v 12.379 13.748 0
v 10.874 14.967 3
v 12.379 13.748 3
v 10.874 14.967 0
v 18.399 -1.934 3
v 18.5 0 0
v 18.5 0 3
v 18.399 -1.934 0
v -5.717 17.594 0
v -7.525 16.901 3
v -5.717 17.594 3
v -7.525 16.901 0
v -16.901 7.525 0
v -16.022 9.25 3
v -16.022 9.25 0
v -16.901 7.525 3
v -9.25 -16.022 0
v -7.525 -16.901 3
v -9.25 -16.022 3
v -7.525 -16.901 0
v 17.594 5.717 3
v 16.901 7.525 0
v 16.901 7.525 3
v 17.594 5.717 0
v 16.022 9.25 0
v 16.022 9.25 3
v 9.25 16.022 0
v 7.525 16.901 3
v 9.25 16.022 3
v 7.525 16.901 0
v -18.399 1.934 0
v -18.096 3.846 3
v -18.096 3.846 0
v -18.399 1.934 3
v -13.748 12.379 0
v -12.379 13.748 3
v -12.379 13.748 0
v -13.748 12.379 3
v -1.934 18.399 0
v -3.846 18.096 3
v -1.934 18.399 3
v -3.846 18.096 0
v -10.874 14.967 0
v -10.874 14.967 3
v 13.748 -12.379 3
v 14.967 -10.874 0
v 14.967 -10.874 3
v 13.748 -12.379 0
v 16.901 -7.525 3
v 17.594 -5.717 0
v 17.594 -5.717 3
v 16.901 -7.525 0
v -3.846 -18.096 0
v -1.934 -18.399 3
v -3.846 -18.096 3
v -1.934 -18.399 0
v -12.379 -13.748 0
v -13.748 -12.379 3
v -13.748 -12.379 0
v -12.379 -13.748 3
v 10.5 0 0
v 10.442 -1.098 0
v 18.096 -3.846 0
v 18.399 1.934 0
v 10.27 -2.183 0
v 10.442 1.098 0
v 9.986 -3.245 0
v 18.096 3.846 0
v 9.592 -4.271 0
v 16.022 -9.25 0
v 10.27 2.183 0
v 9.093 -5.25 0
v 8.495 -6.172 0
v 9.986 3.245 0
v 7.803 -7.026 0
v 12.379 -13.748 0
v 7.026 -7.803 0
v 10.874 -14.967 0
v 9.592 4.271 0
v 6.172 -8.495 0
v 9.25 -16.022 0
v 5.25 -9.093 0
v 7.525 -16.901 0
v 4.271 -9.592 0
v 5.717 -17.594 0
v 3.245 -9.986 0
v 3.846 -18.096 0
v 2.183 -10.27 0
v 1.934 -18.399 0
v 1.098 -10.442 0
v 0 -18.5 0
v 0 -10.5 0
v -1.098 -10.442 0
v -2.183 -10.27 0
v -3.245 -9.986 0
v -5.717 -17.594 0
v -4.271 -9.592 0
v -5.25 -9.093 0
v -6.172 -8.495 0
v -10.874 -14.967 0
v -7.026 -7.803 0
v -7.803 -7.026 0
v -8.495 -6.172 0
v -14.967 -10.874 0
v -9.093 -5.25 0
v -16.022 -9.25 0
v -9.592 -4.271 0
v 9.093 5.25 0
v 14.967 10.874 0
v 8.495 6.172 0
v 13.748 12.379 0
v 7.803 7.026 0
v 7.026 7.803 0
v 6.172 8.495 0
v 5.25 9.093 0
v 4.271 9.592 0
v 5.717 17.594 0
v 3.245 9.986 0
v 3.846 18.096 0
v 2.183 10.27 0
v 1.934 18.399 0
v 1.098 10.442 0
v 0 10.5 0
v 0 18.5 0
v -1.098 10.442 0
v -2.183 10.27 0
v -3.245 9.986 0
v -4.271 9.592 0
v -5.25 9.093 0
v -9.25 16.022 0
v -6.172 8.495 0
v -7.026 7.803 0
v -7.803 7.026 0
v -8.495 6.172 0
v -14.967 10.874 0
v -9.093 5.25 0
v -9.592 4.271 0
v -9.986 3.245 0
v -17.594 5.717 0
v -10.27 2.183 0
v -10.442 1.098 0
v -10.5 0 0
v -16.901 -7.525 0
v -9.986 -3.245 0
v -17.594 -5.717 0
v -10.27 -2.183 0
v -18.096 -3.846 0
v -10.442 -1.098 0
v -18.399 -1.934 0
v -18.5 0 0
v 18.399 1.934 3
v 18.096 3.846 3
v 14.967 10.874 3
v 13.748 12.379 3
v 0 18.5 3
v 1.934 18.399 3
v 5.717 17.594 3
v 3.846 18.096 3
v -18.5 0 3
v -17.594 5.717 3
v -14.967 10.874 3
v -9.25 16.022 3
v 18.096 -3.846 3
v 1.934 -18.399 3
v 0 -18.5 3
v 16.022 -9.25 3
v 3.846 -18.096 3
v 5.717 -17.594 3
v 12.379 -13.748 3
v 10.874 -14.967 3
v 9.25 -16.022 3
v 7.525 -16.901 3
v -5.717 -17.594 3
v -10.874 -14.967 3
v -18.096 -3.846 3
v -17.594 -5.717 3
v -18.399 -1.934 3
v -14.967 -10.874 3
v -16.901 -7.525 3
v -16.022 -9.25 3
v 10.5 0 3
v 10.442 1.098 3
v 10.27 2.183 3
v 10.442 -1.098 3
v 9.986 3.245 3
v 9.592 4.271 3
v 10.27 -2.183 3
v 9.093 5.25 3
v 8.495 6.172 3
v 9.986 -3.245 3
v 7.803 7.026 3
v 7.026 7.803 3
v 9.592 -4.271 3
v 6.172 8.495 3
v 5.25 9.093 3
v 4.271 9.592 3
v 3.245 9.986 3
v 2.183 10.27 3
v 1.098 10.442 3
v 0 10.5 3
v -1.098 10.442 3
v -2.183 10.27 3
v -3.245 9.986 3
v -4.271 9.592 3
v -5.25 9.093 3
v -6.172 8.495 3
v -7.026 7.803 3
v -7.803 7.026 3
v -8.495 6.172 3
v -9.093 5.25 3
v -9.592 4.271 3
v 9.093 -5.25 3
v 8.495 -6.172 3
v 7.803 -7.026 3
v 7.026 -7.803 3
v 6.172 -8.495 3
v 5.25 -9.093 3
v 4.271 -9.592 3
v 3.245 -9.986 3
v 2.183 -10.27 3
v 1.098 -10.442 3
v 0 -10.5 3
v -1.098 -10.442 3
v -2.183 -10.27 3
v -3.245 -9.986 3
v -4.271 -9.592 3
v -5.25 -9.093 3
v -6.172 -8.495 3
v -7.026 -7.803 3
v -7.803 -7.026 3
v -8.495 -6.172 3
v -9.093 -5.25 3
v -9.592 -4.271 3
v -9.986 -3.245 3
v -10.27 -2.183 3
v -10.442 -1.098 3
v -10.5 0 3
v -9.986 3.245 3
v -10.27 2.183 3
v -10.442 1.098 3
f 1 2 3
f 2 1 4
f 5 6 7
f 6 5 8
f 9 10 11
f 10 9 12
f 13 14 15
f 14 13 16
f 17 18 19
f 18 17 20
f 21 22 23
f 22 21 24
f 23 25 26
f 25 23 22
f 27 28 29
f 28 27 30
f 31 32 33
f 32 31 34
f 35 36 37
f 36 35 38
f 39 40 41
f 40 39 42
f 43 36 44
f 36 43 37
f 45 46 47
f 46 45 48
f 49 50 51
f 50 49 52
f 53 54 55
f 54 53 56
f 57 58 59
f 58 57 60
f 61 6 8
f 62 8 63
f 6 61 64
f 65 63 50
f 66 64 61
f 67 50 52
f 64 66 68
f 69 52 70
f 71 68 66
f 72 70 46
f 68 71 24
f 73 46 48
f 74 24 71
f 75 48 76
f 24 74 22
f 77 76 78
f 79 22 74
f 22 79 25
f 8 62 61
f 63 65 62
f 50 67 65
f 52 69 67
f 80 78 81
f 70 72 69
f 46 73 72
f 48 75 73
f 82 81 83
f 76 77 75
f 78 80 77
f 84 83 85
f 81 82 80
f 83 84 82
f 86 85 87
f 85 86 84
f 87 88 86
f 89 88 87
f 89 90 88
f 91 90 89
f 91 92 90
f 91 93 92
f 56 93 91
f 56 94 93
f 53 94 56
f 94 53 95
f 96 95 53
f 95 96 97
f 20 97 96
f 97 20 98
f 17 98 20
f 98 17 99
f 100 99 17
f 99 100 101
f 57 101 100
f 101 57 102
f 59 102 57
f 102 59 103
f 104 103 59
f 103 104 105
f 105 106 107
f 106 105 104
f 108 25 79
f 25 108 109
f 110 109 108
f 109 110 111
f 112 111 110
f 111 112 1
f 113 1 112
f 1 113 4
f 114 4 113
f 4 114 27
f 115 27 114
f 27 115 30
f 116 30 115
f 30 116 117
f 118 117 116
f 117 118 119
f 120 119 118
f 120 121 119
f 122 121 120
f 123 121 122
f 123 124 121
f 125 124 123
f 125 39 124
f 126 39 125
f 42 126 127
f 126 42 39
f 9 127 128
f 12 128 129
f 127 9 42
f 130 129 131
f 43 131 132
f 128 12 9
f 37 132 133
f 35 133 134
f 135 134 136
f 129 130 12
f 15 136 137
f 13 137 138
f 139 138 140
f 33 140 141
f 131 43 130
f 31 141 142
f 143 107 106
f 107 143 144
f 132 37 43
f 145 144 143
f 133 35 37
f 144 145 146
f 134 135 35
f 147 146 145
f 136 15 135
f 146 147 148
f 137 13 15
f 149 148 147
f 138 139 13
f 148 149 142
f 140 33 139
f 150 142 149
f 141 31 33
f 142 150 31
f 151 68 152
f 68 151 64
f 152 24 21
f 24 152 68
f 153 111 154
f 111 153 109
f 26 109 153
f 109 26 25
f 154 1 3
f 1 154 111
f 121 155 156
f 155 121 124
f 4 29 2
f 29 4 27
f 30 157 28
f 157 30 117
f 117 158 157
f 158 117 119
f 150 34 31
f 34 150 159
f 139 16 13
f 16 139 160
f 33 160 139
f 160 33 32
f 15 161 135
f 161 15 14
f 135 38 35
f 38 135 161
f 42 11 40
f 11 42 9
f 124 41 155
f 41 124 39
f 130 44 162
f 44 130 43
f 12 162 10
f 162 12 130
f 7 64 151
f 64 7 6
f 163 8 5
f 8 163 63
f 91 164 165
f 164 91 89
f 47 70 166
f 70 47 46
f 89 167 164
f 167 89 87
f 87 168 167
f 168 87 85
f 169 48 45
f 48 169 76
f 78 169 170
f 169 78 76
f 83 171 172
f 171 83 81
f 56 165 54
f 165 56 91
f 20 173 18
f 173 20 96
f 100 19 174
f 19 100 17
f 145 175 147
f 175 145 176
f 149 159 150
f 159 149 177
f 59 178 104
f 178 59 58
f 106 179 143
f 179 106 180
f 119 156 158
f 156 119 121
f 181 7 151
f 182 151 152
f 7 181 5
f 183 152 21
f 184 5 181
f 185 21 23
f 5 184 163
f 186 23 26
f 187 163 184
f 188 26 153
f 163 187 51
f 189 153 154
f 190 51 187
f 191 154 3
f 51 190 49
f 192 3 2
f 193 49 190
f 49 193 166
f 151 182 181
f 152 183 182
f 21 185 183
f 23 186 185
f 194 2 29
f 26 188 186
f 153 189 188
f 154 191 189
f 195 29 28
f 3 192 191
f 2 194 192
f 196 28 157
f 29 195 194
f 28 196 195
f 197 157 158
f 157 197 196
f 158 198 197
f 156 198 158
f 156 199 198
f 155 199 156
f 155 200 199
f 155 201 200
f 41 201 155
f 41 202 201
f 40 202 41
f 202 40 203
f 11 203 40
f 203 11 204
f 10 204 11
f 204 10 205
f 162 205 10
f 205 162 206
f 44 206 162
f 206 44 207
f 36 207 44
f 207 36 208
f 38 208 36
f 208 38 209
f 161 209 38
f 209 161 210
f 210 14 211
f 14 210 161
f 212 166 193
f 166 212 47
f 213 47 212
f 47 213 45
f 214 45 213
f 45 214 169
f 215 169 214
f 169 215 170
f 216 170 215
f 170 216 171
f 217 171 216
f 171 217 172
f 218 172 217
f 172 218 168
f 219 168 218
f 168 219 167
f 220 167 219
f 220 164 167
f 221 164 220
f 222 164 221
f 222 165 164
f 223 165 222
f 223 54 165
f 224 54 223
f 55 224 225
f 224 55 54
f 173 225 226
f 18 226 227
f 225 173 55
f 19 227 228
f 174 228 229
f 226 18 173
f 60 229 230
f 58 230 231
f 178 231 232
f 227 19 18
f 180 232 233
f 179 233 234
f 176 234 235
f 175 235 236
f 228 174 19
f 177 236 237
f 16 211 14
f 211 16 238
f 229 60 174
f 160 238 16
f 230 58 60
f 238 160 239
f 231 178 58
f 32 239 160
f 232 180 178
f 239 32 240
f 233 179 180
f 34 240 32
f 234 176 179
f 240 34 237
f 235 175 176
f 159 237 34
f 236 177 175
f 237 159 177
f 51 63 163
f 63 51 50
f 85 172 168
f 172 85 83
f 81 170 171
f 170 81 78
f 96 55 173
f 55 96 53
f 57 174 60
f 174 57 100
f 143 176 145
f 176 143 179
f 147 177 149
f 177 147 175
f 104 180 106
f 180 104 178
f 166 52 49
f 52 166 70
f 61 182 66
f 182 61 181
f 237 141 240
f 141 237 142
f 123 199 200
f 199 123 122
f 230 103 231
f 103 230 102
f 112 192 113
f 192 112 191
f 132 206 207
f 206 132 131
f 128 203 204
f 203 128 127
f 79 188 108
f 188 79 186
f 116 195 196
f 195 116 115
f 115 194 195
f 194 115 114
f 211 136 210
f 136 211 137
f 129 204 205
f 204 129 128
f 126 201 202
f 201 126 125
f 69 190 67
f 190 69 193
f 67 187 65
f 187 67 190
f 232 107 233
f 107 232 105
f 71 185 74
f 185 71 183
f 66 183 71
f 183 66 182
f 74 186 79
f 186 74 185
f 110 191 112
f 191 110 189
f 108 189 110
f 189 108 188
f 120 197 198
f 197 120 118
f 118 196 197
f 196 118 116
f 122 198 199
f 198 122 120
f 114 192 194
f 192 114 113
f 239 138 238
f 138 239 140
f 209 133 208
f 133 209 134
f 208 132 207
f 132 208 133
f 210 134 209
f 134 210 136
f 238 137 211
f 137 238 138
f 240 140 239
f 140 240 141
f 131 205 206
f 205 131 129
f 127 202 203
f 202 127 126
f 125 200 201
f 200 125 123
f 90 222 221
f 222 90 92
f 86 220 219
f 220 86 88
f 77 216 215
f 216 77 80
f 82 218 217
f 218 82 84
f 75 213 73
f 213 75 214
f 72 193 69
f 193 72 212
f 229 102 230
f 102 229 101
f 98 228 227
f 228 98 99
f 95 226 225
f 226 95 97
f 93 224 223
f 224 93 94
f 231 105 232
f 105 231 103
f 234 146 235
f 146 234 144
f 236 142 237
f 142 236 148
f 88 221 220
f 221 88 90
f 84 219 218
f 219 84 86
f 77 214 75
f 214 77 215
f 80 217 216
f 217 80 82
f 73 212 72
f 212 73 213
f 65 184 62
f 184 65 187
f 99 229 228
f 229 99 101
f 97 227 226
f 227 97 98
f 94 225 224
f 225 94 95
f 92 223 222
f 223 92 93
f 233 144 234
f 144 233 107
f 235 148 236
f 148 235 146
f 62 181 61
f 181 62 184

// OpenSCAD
// M20 washer

render() {
    difference() {
        cylinder(d=37,h=3,$fn=60);
        cylinder(d=21,h=5,$fn=60);
    }
}
